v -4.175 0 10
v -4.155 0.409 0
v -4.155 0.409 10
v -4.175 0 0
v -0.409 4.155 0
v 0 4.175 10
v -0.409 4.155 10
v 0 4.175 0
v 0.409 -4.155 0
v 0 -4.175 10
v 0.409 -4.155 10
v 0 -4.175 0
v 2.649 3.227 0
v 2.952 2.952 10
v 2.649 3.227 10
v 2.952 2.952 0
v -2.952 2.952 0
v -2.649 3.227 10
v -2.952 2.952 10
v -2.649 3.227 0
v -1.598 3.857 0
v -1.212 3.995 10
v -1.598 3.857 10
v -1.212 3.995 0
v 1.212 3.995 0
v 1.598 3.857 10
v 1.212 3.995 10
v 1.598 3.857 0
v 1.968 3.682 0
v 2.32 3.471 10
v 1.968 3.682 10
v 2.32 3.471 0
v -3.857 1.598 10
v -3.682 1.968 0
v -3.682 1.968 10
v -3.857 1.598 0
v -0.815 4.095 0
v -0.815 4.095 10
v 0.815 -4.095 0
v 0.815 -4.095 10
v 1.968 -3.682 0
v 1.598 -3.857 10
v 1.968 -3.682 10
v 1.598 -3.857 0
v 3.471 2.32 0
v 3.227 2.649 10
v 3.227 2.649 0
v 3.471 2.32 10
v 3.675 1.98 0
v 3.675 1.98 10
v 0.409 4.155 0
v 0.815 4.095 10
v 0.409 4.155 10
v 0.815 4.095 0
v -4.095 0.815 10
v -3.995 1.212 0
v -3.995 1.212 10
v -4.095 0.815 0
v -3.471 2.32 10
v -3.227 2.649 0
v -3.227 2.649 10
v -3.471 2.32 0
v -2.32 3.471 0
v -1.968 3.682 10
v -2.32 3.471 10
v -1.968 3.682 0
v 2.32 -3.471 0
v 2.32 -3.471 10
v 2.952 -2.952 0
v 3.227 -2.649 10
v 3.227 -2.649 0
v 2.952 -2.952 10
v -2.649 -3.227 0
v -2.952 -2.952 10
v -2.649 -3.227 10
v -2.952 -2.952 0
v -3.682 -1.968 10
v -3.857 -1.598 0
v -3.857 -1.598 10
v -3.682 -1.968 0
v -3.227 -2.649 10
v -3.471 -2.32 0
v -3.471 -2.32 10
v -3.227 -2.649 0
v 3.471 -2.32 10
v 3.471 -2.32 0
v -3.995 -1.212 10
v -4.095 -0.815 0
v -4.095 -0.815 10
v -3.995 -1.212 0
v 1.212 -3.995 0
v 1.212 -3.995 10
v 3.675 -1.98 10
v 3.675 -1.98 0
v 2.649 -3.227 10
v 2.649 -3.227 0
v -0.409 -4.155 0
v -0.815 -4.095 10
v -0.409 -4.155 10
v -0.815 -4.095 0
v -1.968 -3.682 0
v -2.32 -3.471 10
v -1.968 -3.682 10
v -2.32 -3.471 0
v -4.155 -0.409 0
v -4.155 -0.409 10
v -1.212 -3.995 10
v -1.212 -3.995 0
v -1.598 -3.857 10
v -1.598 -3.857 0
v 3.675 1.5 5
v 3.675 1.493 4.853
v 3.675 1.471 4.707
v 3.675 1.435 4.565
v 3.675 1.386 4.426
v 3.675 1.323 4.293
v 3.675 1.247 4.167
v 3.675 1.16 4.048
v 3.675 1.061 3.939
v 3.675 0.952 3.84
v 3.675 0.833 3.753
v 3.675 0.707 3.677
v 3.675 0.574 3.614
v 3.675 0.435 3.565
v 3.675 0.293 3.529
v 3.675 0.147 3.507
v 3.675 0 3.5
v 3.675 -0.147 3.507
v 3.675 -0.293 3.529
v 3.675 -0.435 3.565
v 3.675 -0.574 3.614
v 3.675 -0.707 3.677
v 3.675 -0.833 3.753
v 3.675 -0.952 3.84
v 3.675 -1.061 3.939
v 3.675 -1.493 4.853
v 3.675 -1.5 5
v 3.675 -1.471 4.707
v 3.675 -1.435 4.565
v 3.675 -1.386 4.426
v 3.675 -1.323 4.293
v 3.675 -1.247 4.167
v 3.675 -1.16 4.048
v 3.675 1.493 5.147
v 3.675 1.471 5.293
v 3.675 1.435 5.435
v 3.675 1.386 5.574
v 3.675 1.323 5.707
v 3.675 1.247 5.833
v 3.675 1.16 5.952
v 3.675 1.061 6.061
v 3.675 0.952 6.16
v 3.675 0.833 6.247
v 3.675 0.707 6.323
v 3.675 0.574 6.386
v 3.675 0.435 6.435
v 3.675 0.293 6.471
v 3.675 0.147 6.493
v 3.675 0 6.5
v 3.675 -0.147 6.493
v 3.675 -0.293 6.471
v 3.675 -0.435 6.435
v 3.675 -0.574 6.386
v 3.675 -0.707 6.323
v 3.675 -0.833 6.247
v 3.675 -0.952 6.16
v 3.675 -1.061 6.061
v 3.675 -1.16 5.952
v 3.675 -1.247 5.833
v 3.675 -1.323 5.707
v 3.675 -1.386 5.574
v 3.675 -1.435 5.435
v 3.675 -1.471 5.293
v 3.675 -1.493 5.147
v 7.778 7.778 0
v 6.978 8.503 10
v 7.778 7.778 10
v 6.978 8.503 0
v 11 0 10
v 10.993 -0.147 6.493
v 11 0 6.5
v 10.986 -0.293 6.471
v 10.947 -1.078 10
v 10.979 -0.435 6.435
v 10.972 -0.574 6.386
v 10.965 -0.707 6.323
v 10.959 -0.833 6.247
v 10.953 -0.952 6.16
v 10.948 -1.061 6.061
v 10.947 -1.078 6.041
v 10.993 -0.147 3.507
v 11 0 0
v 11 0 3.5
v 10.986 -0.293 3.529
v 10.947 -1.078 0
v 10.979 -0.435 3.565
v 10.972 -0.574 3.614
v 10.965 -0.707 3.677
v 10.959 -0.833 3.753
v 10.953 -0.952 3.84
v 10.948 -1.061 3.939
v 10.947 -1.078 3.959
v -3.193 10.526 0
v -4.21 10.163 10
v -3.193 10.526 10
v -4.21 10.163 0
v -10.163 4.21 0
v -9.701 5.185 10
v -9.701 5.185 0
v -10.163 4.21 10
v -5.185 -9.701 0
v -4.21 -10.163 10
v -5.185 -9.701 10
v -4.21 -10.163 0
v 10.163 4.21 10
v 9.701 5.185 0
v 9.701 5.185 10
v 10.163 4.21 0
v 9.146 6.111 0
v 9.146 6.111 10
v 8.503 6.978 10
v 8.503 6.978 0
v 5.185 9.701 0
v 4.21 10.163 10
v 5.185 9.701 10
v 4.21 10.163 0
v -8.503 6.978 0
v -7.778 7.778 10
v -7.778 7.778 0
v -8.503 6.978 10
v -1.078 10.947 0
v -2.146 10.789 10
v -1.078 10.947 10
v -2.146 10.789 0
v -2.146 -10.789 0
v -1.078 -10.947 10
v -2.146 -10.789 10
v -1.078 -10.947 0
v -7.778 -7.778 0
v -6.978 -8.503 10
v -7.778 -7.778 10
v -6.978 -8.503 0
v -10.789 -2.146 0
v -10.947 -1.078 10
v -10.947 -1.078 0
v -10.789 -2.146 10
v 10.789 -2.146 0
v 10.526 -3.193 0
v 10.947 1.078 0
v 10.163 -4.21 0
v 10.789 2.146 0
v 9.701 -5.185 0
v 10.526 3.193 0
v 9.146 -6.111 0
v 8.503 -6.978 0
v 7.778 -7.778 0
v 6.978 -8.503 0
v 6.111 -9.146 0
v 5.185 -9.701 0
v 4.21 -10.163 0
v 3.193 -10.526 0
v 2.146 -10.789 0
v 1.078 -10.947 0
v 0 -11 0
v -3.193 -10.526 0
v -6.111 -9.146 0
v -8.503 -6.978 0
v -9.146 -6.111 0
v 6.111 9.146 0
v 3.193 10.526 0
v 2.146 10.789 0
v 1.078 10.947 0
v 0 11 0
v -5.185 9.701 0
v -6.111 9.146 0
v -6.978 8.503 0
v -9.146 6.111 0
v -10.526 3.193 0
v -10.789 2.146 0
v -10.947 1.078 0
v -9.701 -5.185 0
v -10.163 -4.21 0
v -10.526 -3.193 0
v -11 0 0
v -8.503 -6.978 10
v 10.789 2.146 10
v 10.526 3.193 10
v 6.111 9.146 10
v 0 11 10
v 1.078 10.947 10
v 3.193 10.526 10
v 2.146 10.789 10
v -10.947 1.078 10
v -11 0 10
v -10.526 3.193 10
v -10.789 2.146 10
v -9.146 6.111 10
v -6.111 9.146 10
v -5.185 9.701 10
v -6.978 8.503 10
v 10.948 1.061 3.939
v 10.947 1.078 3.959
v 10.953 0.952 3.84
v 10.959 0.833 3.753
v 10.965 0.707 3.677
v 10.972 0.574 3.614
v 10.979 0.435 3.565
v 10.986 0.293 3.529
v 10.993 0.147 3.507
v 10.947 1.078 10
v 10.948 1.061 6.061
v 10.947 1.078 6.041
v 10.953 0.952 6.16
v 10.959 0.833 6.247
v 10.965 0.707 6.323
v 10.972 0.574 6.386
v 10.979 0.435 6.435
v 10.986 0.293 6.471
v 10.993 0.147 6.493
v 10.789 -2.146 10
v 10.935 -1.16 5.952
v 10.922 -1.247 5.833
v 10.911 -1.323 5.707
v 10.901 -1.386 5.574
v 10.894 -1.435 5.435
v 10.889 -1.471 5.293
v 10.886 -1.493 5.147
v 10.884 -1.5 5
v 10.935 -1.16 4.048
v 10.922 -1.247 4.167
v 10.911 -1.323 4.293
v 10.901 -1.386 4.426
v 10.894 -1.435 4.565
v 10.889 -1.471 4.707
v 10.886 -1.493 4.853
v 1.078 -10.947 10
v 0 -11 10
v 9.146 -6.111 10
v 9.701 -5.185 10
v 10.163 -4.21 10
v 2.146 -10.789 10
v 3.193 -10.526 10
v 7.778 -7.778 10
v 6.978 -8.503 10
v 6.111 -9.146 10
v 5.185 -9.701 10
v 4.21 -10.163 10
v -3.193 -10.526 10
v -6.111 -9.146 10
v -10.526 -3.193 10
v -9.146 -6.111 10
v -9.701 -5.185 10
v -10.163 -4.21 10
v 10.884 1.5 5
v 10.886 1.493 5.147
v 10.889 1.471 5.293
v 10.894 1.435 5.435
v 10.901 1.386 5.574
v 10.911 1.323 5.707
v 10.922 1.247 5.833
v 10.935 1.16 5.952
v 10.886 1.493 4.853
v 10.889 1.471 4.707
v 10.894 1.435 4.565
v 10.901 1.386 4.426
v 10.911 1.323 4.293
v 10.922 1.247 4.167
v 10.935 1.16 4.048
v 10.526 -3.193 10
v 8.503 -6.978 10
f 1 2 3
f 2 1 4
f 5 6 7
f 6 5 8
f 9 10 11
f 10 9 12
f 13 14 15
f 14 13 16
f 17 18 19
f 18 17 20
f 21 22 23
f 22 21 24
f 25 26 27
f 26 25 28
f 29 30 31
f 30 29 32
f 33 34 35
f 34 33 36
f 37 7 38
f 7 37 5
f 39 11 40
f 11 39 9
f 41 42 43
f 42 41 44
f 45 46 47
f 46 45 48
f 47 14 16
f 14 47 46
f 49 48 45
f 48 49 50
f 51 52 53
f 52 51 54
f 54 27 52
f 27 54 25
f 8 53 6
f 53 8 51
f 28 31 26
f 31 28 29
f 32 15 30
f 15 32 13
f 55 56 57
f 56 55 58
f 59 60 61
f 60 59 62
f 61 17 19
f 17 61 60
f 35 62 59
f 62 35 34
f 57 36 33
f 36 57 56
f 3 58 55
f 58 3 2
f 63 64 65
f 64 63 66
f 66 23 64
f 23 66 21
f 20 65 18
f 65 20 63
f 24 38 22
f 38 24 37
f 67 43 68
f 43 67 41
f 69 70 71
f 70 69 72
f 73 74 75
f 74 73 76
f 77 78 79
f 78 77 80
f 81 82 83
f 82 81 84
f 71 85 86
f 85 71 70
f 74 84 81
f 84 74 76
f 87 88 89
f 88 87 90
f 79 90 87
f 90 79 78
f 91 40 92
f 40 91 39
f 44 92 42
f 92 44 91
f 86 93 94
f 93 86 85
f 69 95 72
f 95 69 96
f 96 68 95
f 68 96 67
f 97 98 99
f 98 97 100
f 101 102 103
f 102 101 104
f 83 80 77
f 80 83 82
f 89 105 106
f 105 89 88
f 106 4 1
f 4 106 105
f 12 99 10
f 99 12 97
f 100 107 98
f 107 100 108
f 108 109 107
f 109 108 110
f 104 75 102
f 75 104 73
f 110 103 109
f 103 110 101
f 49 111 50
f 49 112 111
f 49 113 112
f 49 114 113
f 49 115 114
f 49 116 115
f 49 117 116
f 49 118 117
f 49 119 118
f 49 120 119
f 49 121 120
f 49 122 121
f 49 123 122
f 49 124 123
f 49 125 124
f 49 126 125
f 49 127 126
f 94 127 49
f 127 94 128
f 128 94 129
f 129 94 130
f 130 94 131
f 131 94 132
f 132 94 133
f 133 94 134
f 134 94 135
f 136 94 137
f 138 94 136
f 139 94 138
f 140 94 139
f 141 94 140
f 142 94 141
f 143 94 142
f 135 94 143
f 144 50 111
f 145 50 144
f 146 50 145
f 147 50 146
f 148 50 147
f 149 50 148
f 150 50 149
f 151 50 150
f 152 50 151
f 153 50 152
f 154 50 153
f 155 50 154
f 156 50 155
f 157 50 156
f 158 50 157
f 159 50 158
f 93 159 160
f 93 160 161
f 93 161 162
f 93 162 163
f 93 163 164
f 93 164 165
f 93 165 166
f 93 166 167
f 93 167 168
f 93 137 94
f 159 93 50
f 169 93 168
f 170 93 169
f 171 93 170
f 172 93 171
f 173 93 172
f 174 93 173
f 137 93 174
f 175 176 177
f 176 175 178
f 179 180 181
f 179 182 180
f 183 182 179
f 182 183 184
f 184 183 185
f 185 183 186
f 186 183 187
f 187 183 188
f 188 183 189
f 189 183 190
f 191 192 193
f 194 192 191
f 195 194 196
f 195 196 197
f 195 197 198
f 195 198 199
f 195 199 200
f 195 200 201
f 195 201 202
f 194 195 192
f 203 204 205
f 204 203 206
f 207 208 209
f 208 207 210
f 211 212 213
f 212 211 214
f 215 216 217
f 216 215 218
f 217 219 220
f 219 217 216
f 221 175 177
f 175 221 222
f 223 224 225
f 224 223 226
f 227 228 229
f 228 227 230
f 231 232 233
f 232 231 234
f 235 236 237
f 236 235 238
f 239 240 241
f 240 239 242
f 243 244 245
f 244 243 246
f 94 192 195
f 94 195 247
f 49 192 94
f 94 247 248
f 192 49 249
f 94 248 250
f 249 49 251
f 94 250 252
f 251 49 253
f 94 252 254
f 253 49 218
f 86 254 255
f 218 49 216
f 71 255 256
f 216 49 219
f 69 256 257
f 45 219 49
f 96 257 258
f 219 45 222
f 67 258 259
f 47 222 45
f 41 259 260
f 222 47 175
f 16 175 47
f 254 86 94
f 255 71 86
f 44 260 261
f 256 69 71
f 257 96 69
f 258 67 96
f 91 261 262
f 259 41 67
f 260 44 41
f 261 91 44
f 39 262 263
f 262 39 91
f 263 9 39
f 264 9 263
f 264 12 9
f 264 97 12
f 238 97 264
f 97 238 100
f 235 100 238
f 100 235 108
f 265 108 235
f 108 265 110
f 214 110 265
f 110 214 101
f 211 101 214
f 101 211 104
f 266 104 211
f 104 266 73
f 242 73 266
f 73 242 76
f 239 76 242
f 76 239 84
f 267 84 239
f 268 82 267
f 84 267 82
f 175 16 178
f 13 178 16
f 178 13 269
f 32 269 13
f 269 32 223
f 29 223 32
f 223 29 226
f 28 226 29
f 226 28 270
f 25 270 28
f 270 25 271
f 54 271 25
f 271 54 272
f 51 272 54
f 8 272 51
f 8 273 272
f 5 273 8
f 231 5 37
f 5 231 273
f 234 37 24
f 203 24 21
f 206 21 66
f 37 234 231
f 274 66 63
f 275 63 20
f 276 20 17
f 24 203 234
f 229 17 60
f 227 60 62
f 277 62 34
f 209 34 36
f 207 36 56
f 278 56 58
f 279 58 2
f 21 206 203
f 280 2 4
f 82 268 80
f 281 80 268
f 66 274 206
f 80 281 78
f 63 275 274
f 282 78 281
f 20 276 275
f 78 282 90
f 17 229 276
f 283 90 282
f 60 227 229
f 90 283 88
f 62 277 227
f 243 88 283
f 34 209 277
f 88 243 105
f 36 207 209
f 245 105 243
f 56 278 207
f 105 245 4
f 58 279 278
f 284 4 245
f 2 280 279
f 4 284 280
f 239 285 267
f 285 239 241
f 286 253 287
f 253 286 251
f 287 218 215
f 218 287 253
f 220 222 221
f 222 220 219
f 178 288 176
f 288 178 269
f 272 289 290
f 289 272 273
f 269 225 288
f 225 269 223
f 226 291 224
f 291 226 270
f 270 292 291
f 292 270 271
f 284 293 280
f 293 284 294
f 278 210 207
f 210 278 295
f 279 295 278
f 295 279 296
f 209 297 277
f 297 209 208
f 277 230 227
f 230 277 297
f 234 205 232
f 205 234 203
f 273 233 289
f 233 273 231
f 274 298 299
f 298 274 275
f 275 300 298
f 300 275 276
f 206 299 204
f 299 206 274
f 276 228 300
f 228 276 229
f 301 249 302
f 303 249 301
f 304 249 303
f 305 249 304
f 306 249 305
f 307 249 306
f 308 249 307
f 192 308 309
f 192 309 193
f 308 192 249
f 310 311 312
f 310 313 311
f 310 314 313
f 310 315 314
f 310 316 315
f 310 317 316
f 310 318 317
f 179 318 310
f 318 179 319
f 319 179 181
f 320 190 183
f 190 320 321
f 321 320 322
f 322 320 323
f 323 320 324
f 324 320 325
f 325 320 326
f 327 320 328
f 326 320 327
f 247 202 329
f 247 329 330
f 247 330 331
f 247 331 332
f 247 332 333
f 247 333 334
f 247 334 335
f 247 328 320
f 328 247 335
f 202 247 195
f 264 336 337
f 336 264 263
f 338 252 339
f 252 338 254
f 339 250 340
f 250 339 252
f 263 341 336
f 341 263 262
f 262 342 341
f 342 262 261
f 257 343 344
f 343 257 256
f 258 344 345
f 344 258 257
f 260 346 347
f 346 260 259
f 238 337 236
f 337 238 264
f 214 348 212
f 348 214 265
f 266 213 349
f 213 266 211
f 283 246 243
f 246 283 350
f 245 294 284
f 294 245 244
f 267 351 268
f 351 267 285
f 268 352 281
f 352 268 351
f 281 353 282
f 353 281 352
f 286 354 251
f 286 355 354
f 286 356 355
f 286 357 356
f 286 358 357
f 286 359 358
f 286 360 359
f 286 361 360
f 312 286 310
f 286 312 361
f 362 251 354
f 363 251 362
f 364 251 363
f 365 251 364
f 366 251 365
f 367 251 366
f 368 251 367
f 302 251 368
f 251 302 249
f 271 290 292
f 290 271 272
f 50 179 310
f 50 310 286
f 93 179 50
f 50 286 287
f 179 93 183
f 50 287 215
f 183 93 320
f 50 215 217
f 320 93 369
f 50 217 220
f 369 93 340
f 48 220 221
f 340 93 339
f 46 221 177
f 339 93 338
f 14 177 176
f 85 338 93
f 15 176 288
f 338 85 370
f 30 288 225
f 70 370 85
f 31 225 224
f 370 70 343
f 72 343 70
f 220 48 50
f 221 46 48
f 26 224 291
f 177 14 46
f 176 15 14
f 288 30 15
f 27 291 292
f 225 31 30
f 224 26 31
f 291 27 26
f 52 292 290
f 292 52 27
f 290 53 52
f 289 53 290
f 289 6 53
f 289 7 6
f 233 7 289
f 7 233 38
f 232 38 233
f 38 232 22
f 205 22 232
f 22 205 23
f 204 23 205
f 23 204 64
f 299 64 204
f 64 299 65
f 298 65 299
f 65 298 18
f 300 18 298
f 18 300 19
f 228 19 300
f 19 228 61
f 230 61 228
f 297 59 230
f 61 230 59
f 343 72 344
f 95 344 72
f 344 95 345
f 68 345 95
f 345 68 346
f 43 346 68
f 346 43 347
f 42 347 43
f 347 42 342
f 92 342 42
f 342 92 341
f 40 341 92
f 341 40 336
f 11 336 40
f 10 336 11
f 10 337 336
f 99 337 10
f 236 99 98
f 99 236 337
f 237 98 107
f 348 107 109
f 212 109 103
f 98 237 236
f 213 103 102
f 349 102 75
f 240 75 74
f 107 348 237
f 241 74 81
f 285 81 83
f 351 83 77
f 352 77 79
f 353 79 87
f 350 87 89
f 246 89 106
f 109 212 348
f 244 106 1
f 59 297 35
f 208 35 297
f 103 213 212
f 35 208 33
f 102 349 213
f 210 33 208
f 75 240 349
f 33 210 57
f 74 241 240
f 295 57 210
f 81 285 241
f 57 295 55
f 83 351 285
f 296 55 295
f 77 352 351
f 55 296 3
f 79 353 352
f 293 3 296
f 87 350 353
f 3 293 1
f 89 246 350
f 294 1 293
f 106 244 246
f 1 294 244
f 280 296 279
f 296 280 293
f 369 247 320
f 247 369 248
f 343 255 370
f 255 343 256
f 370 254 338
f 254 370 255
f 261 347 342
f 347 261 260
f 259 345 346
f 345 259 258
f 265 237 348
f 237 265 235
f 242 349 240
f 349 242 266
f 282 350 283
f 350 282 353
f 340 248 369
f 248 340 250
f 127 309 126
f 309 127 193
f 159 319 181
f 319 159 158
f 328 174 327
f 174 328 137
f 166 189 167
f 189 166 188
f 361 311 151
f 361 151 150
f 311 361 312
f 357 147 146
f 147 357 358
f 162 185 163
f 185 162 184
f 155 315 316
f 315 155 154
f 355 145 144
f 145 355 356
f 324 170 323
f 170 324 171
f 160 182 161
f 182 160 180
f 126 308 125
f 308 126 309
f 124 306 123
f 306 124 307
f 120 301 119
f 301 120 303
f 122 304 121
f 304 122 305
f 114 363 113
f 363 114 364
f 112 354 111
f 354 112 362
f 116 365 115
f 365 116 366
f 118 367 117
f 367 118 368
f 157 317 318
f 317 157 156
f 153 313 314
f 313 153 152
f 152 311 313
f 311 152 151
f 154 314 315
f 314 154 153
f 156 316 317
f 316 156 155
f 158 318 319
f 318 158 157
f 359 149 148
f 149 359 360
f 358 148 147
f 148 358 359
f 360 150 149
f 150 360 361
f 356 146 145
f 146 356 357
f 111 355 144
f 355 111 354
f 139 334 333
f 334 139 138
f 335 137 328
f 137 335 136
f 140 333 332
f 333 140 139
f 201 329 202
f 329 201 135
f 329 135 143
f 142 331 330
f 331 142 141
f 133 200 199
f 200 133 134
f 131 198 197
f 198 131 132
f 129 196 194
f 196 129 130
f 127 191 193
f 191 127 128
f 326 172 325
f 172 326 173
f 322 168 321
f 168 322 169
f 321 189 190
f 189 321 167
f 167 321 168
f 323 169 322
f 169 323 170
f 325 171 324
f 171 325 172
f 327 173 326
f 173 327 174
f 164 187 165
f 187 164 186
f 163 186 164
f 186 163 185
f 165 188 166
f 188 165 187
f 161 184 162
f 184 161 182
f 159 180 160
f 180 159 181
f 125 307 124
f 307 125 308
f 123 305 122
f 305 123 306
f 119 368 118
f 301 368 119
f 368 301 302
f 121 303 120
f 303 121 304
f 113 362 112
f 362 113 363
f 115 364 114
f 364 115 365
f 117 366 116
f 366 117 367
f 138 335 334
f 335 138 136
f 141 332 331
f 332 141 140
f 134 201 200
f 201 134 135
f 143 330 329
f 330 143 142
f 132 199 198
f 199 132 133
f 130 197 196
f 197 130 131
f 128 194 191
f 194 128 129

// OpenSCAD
// Gen-DI — shaft collar with D-flat bore (set screw bears on the flat); print x4
include <parameters.scad>;
$fn = 64;
// D-flat keyed bore: flat faces +X (angle 0 = magnet pocket 0 = index notch)
module dflat_bore(h) {
    intersection() {
        cylinder(d=shaft_bore, h=h);
        translate([-shaft_bore, -shaft_bore, 0]) cube([shaft_bore + dflat_x, 2*shaft_bore, h]);
    }
}

od = 22; h = collar_h; set_d = 3.0;
difference() {
    cylinder(d=od, h=h);
    translate([0, 0, -0.1]) dflat_bore(h + 0.2);
    translate([0, 0, h/2]) rotate([0, 90, 0]) cylinder(d=set_d, h=od);
}
